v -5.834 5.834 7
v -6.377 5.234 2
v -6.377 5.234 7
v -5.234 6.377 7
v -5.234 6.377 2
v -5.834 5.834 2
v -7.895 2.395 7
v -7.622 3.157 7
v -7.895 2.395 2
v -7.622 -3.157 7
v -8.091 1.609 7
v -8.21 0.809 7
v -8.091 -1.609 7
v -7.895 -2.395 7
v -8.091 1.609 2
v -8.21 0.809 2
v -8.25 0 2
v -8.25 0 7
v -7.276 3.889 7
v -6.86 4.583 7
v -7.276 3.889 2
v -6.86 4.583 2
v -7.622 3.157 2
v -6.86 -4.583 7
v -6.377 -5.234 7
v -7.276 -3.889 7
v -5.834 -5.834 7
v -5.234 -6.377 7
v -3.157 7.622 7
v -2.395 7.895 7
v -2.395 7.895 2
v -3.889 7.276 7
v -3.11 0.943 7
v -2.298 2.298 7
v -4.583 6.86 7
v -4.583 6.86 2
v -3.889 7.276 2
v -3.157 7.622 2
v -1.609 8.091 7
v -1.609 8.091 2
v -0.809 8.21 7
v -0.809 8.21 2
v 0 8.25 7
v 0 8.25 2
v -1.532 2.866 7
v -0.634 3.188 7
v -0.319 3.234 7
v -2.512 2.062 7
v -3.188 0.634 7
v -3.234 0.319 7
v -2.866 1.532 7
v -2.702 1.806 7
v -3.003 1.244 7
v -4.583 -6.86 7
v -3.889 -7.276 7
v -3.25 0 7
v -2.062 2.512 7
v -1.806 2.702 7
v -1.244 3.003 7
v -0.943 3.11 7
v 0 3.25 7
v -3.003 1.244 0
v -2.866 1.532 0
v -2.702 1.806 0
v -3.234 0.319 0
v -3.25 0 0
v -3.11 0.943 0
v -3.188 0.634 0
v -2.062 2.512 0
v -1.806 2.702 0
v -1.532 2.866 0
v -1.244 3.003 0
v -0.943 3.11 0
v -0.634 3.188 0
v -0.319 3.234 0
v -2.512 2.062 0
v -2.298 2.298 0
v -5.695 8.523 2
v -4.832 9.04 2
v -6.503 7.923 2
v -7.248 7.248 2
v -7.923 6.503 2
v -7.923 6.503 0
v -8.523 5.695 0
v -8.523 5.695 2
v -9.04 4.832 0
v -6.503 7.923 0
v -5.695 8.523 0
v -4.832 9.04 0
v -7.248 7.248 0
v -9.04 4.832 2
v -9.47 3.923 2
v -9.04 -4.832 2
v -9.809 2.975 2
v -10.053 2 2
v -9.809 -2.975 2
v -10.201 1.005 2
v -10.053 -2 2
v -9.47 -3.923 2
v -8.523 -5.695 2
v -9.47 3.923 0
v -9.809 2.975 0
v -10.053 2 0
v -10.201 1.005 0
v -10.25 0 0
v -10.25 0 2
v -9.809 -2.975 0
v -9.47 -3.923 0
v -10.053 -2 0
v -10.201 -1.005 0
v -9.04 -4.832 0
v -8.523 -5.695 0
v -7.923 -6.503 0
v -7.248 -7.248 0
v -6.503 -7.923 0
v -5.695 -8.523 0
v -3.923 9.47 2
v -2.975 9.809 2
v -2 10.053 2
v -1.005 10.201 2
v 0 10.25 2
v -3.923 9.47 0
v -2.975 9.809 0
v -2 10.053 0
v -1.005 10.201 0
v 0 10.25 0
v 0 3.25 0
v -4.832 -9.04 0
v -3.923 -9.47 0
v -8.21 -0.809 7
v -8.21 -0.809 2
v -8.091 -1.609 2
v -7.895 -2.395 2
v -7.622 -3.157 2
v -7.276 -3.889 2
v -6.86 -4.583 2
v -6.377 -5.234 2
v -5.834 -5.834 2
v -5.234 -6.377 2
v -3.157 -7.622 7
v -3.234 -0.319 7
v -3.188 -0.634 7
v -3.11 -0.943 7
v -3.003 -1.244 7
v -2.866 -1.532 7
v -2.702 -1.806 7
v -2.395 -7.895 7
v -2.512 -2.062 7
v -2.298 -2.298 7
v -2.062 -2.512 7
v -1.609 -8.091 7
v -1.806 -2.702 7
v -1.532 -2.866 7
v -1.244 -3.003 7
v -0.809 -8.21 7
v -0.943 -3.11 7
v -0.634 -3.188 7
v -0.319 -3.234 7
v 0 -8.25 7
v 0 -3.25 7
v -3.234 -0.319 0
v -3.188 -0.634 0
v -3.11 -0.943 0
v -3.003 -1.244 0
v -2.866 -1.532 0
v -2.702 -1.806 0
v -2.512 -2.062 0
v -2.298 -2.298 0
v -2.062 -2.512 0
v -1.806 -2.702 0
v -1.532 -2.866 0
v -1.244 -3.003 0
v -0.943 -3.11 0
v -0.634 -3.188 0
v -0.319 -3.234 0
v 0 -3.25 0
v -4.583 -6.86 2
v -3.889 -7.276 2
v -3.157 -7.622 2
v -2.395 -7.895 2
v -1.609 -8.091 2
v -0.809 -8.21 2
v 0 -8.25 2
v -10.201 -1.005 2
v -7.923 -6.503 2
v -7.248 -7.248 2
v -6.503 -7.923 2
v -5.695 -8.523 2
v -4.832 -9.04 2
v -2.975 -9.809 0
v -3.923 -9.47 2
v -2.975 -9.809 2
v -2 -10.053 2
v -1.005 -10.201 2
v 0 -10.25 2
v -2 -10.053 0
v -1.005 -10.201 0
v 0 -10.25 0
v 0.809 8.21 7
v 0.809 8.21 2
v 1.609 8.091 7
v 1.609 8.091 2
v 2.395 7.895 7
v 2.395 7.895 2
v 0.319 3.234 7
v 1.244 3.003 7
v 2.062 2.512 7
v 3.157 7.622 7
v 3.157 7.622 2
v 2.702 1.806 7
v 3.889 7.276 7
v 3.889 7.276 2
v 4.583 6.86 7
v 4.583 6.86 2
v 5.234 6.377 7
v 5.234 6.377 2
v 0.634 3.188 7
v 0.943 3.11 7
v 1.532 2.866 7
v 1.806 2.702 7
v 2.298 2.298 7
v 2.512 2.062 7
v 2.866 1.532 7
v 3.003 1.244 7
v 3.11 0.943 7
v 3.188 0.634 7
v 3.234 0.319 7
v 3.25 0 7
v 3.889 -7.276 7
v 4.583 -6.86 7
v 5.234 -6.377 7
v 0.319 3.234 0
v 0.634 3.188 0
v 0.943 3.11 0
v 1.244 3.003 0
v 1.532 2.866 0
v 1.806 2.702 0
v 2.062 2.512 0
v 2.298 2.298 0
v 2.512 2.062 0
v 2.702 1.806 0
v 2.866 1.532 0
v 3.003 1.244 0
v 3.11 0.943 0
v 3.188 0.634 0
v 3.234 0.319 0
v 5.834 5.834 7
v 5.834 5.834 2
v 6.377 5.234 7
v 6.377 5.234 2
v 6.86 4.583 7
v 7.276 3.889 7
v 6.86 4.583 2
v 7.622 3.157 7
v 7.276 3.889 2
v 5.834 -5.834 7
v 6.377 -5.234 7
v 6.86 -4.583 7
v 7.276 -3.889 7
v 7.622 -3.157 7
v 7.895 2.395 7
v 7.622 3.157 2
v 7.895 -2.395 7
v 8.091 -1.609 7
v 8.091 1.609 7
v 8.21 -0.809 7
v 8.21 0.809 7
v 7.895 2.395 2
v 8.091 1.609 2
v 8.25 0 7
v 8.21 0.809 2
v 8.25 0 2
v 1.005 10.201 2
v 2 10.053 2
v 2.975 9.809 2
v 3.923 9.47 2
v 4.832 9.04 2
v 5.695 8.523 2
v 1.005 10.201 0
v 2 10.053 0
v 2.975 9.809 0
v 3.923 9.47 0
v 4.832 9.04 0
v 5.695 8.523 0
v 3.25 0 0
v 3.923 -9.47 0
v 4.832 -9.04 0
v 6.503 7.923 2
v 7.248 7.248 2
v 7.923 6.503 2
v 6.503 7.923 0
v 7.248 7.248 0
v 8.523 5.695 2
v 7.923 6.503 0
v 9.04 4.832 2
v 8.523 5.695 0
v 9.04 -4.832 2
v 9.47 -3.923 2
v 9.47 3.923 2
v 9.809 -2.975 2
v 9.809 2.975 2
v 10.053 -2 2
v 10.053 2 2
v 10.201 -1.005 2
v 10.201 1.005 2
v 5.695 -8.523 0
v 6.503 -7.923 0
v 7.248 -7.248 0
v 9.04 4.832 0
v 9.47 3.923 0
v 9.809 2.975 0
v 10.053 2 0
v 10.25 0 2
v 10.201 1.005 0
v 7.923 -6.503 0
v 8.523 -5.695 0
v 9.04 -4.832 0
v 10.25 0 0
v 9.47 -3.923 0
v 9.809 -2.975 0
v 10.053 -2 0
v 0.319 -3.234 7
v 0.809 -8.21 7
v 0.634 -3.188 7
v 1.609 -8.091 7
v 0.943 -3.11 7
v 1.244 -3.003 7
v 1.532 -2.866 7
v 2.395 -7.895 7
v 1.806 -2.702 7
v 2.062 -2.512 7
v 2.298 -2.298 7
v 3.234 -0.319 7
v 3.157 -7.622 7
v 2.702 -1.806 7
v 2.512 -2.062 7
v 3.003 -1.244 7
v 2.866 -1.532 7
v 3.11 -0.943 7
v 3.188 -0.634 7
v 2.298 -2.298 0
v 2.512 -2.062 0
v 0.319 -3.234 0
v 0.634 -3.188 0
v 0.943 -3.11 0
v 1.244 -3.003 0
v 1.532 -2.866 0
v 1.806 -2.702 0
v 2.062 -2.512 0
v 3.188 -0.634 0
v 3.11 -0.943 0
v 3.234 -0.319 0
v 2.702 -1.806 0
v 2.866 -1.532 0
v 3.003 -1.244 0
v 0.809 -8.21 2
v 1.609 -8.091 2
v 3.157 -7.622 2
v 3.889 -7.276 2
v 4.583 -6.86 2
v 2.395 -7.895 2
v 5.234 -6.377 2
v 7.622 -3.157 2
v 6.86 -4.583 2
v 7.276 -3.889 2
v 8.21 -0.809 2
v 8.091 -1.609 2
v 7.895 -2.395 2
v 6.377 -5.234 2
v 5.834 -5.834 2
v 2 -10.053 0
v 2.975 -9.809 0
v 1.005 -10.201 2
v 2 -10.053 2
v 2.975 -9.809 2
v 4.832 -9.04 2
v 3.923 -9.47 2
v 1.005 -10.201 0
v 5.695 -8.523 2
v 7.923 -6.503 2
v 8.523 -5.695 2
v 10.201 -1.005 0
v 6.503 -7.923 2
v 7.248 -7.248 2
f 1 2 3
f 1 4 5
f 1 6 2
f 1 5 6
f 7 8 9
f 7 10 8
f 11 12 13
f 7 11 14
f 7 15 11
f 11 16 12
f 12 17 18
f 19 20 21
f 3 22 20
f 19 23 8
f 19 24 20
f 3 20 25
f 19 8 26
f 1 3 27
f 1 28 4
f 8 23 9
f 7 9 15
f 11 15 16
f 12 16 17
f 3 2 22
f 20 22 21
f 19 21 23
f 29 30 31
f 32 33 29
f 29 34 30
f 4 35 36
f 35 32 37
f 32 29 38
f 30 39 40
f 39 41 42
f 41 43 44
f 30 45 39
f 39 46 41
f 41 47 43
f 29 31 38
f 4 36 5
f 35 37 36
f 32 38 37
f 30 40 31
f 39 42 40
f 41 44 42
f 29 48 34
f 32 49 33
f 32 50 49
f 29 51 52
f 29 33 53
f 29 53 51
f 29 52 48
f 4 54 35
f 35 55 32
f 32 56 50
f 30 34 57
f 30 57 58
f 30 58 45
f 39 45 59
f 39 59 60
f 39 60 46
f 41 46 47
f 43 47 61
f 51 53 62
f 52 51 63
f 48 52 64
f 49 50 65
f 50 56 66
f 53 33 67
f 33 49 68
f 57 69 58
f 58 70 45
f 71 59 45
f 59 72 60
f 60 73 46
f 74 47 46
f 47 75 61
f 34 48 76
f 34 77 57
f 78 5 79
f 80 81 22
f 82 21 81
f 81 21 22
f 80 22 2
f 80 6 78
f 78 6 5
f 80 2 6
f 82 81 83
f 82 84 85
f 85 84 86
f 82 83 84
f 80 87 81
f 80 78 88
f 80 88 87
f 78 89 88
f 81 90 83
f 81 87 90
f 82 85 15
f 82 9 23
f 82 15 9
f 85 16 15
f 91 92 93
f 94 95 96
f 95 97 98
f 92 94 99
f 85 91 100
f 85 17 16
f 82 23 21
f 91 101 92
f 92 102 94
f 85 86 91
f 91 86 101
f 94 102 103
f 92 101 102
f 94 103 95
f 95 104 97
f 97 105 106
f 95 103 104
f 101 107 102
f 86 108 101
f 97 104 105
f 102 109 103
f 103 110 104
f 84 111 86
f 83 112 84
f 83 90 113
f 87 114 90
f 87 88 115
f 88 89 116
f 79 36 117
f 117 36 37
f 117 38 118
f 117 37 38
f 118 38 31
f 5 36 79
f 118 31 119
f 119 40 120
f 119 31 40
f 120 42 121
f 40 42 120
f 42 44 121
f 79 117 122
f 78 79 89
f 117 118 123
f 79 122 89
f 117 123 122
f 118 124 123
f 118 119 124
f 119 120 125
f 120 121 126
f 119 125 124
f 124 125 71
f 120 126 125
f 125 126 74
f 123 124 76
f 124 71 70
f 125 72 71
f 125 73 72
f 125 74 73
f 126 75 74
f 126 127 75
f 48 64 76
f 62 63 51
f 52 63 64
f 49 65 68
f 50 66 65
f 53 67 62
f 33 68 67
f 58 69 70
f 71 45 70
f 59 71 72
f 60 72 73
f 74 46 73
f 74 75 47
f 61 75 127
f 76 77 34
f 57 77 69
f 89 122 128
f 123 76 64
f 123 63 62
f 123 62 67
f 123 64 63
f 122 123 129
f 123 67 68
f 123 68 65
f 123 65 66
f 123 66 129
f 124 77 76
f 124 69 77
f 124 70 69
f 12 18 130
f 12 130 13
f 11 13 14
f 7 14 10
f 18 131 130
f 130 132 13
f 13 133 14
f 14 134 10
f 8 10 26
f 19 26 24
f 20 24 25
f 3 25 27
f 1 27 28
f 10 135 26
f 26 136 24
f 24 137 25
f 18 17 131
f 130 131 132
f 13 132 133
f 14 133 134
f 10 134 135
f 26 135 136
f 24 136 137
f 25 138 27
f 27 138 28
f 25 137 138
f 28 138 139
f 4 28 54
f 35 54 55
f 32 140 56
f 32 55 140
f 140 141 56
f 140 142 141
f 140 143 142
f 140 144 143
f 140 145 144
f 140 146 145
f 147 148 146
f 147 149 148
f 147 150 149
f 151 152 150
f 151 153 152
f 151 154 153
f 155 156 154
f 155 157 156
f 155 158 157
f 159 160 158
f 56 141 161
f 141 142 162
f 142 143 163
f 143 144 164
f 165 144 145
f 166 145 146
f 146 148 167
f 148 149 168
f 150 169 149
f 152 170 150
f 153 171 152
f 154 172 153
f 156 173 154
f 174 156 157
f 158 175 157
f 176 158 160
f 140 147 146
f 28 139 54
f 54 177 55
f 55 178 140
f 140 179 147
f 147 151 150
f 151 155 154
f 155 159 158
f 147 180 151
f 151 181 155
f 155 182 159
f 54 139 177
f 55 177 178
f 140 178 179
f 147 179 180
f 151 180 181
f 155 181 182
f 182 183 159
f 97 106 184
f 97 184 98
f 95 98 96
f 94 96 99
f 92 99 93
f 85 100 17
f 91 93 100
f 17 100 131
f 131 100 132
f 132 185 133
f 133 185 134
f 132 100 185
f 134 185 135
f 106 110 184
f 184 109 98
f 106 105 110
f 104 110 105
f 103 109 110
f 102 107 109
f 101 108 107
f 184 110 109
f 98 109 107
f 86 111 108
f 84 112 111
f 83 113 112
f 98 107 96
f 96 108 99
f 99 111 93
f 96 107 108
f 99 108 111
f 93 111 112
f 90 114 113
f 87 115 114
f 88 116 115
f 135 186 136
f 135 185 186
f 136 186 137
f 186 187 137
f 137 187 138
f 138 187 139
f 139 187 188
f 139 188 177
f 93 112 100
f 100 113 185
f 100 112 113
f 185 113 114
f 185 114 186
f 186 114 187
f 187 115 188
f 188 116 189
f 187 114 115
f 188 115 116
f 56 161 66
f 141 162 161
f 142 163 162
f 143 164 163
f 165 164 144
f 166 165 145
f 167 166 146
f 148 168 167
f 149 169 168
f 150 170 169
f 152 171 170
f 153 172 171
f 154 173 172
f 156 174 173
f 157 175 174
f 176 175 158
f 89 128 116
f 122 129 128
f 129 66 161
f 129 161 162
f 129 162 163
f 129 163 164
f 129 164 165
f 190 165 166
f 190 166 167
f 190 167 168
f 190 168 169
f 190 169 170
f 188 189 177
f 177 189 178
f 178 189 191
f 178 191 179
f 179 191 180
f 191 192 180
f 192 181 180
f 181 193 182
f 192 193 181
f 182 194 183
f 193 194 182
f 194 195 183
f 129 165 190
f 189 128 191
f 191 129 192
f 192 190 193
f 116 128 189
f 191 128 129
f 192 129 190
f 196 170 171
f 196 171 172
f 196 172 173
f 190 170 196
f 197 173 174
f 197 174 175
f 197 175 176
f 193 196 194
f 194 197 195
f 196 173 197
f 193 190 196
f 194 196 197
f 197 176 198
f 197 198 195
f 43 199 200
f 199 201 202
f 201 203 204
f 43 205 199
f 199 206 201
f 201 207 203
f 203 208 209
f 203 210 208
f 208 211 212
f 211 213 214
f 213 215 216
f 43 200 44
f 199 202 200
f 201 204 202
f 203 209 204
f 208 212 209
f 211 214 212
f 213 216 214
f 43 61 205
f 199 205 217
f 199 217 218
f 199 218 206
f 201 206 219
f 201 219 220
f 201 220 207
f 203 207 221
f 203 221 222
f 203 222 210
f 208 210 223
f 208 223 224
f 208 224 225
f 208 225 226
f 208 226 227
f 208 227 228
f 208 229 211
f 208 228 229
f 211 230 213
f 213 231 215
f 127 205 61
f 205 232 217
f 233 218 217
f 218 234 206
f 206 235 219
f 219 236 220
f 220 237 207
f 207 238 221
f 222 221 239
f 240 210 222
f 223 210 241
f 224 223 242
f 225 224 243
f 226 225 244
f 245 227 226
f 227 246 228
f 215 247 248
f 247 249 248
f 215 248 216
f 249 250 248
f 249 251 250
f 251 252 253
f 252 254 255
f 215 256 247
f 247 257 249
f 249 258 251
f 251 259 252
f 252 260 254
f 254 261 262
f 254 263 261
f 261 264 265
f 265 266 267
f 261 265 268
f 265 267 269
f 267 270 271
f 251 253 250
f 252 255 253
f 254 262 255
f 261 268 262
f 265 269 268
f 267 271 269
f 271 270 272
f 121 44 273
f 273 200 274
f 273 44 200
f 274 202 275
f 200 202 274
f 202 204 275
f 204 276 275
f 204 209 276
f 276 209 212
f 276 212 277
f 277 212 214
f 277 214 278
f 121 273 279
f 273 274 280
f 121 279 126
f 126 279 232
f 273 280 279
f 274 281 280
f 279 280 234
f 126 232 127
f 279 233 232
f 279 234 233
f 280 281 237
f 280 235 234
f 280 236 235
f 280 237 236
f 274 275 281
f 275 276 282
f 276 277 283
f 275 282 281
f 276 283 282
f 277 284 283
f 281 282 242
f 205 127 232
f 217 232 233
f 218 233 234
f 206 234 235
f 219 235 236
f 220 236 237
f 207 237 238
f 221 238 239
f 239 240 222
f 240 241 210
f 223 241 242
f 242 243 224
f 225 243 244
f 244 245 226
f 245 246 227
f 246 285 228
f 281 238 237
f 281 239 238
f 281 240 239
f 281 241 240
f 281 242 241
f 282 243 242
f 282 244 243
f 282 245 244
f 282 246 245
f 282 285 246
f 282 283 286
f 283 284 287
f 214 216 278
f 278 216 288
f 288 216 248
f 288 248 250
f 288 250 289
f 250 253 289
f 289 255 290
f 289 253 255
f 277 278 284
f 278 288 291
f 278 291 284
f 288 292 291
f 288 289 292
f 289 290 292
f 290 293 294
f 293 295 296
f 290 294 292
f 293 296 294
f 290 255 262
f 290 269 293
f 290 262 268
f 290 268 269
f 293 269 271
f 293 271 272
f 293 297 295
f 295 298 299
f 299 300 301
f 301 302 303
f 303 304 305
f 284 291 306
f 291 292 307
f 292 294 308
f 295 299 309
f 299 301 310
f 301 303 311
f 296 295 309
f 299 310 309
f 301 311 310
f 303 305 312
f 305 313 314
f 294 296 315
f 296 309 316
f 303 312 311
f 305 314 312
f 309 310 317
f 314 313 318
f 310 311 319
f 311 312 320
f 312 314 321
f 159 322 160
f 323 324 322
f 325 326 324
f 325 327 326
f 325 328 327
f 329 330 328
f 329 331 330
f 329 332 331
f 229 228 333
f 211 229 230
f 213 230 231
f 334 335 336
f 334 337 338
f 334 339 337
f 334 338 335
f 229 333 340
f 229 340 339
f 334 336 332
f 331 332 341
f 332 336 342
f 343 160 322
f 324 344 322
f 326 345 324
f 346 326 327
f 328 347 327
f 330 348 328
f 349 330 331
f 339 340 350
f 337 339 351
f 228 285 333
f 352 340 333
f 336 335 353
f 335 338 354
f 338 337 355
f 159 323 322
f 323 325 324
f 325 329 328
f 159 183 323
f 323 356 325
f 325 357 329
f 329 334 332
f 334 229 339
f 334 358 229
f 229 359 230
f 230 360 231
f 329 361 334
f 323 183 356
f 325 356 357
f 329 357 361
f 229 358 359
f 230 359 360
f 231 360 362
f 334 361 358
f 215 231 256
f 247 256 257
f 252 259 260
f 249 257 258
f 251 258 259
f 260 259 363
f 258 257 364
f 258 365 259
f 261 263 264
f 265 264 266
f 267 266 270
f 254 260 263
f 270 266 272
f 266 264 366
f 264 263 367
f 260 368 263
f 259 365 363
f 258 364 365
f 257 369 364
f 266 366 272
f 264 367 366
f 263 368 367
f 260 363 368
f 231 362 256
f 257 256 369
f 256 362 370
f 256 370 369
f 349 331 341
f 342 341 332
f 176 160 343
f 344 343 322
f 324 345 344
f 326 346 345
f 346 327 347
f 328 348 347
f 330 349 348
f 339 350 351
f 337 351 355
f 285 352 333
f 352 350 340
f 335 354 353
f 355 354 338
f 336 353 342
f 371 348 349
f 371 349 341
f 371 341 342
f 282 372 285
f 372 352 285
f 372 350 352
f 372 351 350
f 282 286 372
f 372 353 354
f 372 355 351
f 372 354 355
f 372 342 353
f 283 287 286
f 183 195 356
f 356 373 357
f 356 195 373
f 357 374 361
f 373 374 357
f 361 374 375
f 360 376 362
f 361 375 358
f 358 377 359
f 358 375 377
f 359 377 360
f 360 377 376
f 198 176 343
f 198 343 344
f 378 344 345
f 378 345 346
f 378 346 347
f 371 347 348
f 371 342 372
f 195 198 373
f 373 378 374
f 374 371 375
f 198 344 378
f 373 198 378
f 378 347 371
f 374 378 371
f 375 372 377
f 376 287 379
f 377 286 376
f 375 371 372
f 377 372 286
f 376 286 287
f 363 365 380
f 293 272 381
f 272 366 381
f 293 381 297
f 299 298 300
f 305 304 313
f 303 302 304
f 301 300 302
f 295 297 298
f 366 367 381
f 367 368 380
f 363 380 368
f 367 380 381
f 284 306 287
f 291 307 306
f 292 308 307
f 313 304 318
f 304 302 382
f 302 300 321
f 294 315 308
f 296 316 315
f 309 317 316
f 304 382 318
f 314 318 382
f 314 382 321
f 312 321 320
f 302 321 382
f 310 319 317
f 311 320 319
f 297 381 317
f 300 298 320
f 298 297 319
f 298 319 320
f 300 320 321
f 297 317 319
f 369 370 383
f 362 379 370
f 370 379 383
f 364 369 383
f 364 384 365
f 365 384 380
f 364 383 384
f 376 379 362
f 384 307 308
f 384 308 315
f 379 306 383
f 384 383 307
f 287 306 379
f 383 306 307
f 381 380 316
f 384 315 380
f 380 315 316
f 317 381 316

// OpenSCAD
// file: drill_bushing.scad
// ==========================================
// DRILL BUSHING - GEDEELDE BASIS (parametrisch)
// ==========================================
// Vervangbare opoffer-ring (boorbus) voor boormallen.
// Het lijf valt in de uitsparing van de mal, de kraag blijft erbovenop liggen
// zodat de ring bij het boren niet doorzakt. Is een ring uitgeboord, dan
// vervang je alleen die ring en niet de hele mal.
//
// Origin = de BOVENKANT van de mal:
//   lijf loopt van z = -plate_thick tot z = 0
//   kraag loopt van z = 0 tot z = collar_h
//
// Deze basis niet direct importeren in een mal, gebruik de maatvoerende versies:
//   use <drill_bushing_m8.scad>;   ->  bushing_m8(...)  / bushing_m8_pocket_d()
//   use <drill_bushing_m10.scad>;  ->  bushing_m10(...) / bushing_m10_pocket_d()

bush_wall_default     = 5;     // Wanddikte van de ring rond het boorgat
bush_fit_default      = 0.2;   // Speling tussen ring en uitsparing in de mal (persfit)
bush_collar_h_default = 2;     // Dikte van de kraag die bovenop de mal rust
bush_collar_w_default = 2;     // Extra breedte van de kraag per kant (om hem eruit te wippen)

// ==========================================
// MAATFUNCTIES
// ==========================================

function bushing_od(hole_d, wall = bush_wall_default) =
    hole_d + (2 * wall);

function bushing_pocket_d(hole_d, wall = bush_wall_default, fit = bush_fit_default) =
    bushing_od(hole_d, wall) + fit;

function bushing_collar_d(hole_d, wall = bush_wall_default, collar_w = bush_collar_w_default) =
    bushing_od(hole_d, wall) + (2 * collar_w);

// ==========================================
// GEOMETRY LOGIC
// ==========================================

module drill_bushing(hole_d,
                     plate_thick,
                     wall     = bush_wall_default,
                     collar_h = bush_collar_h_default,
                     collar_w = bush_collar_w_default) {
    difference() {
        union() {
            translate([0, 0, -plate_thick])
                cylinder(d = bushing_od(hole_d, wall), h = plate_thick, $fn = 64);

            cylinder(d = bushing_collar_d(hole_d, wall, collar_w), h = collar_h, $fn = 64);
        }

        translate([0, 0, -plate_thick - 1])
            cylinder(d = hole_d, h = plate_thick + collar_h + 2, $fn = 64);
    }
}

module drill_bushing_flat(hole_d,
                          plate_thick,
                          wall     = bush_wall_default,
                          collar_h = bush_collar_h_default,
                          collar_w = bush_collar_w_default) {
    translate([0, 0, collar_h])
        rotate([180, 0, 0])
            drill_bushing(hole_d, plate_thick, wall, collar_h, collar_w);
}
// file: ../config/parameters.scad
// Global Chassis Dimensions
chassis_width = 750; //kies een veelvoud van 50  
chassis_length = 1000; //kies een veelvoud van 50

// --- Modulair Gatenpatroon (Grid) ---
grid_step = 50; // Universele stapgrootte voor alle gaten

// bolt diameters
m12_bolt_diameter = 12.4; //dikte van de gaten van m12 bout
m10_bolt_diameter = 10.4; //dikte van de gaten van m10 bout
m8_bolt_diameter = 8.4; //dikte van de gaten van m8 bout  
m6_bolt_diameter = 6.4; //dikte van de gaten van m6 bout  


// --- Bereiken (Ranges) voor de Robot Afmetingen ---
// Bereik voor de BREEDTE 
chassis_width_min = 350;
chassis_width_max = 850;

// Bereik voor de LENGTE 
chassis_length_min = 700;
chassis_length_max = 1100;

// Bereik voor de BASE PLATE 
base_length_min = 800;
base_length_max = 1300;

// Beam Profile (Purchased Part)
beam_profile = 40;
beam_thickness = 2;    
beam_length_1 = 1000;
beam_length_2 = 1300;

// Upright & Cover
base_plate_length = 1300;
connect_plate_thick = 5; 
upright_height = 500;
top_side_width = 60;
cover_thick = 5;
cover_clearance = 10;  
cover_overlap = 10;
cover_total_height = 530; 
hole_distance_cover = 30;

// Resolution & Preview
$fn = 60; 
exploded_view = false; 
explosion_dist = 800; 

// Motor & Wheel Data
tire_dia = 430;
tire_width = 100;
hub_dia = 160;
hub_width = 140; //specs from Quinder are: Fork width for mounting: 138mm
axle_dia = 10.2; //specs from Quinder are: Mounting hole: max 10.2mm, zou iets strakker mogen naar 10.1mm, 10.2 nog wat spelling
bolt_dia = 14.2;

// Bracket Geometry universal
bracket_thick = 4;
bracket_bolt_diameter = 10.4; //dikte van de gaten van gaten van de wiel_bracket  
bracket_m8_bolt_diameter = 8.4; //dikte van de gaten van m8 bout  
tire_clearance = 130;      
side_plate_top_width = 240;
side_plate_width = 240;

//Side plate
axle_bottom_dist = 35;
extra_space_bracket = 40;
side_hole_start_from_bottom = 20; 
side_hole_pitch = 100; 

tab_length = 40;         // Lengte van de nok/sleuf
tab_offset_y = 40;       // Positie vanaf het midden over de Y-as (uit elkaar)
laser_tolerance = 1.0;   // Extra snijspeling zodat het makkelijk in elkaar schuift

//top plate
bracket_top_hole_dist_x = 100; // De totale gewenste afstand over de X-as veelvoud van 50 maken
bracket_top_hole_dist_y = 150; // De totale gewenste afstand over de Y-as veelvoud van 50 maken
bracket_top_hole_distance_centrum_holes = 50; //De afstand van centrum gat tot centrum gat in het hart

arm_height = (tire_dia / 2) + tire_clearance;
inner_width = hub_width;
bracket_total_width = inner_width + (extra_space_bracket*2) + (2 * bracket_thick);
bracket_top_z = arm_height + bracket_thick;

// Axle bracket
axle_hex_width = 110;          
axle_hex_height = 40;
axle_hex_straight_part = 30;   
axle_bracket_thickness = 4;    

axle_hole_diameter = 10.3; //Dikte van het gaten in de axle_bracket
axle_hole_distance = 40; //hoogte vanaf de onderkant tot de wiel ophanging

axle_flat_width = axle_dia; // Gebruikt 10.3 uit parameters 
axle_round_dia = bolt_dia;  // Gebruikt 14.2 uit parameters

// --- Caster Wheel Parameters ---  
bracket_width            = 80;  
bracket_thickness        = 4;
caster_wheel_axle_width  = 130;   
caster_wheel_axle_diameter = 20;
bracket_axle_hole_diameter = 10.4;

pivot_cylinder_dia       = 30;  
pivot_cylinder_height    = 100;  

outer_cylinder_thickness = 5;   
outer_cylinder_height    = 60;  
outer_cylinder_z_offset  = 33;   
kap_speling              = 1;   

tube_width               = 35;  
tube_thickness           = 2;   
tube_length              = 400;
tube_length_min          = 240;
// main file
// ==========================================
// DRILL BUSHING M6 (importeerbaar onderdeel)
// ==========================================
// Opoffer-ring voor een M6 boorgat. Open dit bestand los om de ring te
// printen (staat al in de juiste printstand, kraag op de bodemplaat).
//
// Importeren in een mal:
//   use <drill_bushing_m6.scad>;
//
//   difference() { ... cylinder(d = bushing_m6_pocket_d(), h = 50, center = true); }
//   translate([x, y, top_of_jig]) bushing_m6(plate_thick = 5);
//   translate([x, y, 0])          bushing_m6_flat(plate_thick = 5);

include <../config/parameters.scad>;
include <drill_bushing.scad>;

bush_m6_drill_clearance = 0.1;   // Speling op het boorgat in de ring (geleiding van de boor)
bush_m6_plate_thick     = 5;     // Standaard maldikte als je de ring los print

bush_m6_hole_d = m6_bolt_diameter + bush_m6_drill_clearance;

// DEBUG MODE - alleen van toepassing als je DIT bestand los opent
show_standalone = true;

// ==========================================
// MAATFUNCTIES
// ==========================================

function bushing_m6_hole_d() = bush_m6_hole_d;

function bushing_m6_od(wall = bush_wall_default) =
    bushing_od(bush_m6_hole_d, wall);

function bushing_m6_pocket_d(wall = bush_wall_default, fit = bush_fit_default) =
    bushing_pocket_d(bush_m6_hole_d, wall, fit);

function bushing_m6_collar_d(wall = bush_wall_default, collar_w = bush_collar_w_default) =
    bushing_collar_d(bush_m6_hole_d, wall, collar_w);

// ==========================================
// GEOMETRY LOGIC
// ==========================================

module bushing_m6(plate_thick = bush_m6_plate_thick,
                  wall        = bush_wall_default,
                  collar_h    = bush_collar_h_default,
                  collar_w    = bush_collar_w_default) {
    drill_bushing(bush_m6_hole_d, plate_thick, wall, collar_h, collar_w);
}

module bushing_m6_flat(plate_thick = bush_m6_plate_thick,
                       wall        = bush_wall_default,
                       collar_h    = bush_collar_h_default,
                       collar_w    = bush_collar_w_default) {
    drill_bushing_flat(bush_m6_hole_d, plate_thick, wall, collar_h, collar_w);
}

// ==========================================
// RENDER (alleen standalone, wordt genegeerd bij 'use <...>')
// ==========================================

if (show_standalone) {
    color("Tomato")
        bushing_m6_flat();
}
